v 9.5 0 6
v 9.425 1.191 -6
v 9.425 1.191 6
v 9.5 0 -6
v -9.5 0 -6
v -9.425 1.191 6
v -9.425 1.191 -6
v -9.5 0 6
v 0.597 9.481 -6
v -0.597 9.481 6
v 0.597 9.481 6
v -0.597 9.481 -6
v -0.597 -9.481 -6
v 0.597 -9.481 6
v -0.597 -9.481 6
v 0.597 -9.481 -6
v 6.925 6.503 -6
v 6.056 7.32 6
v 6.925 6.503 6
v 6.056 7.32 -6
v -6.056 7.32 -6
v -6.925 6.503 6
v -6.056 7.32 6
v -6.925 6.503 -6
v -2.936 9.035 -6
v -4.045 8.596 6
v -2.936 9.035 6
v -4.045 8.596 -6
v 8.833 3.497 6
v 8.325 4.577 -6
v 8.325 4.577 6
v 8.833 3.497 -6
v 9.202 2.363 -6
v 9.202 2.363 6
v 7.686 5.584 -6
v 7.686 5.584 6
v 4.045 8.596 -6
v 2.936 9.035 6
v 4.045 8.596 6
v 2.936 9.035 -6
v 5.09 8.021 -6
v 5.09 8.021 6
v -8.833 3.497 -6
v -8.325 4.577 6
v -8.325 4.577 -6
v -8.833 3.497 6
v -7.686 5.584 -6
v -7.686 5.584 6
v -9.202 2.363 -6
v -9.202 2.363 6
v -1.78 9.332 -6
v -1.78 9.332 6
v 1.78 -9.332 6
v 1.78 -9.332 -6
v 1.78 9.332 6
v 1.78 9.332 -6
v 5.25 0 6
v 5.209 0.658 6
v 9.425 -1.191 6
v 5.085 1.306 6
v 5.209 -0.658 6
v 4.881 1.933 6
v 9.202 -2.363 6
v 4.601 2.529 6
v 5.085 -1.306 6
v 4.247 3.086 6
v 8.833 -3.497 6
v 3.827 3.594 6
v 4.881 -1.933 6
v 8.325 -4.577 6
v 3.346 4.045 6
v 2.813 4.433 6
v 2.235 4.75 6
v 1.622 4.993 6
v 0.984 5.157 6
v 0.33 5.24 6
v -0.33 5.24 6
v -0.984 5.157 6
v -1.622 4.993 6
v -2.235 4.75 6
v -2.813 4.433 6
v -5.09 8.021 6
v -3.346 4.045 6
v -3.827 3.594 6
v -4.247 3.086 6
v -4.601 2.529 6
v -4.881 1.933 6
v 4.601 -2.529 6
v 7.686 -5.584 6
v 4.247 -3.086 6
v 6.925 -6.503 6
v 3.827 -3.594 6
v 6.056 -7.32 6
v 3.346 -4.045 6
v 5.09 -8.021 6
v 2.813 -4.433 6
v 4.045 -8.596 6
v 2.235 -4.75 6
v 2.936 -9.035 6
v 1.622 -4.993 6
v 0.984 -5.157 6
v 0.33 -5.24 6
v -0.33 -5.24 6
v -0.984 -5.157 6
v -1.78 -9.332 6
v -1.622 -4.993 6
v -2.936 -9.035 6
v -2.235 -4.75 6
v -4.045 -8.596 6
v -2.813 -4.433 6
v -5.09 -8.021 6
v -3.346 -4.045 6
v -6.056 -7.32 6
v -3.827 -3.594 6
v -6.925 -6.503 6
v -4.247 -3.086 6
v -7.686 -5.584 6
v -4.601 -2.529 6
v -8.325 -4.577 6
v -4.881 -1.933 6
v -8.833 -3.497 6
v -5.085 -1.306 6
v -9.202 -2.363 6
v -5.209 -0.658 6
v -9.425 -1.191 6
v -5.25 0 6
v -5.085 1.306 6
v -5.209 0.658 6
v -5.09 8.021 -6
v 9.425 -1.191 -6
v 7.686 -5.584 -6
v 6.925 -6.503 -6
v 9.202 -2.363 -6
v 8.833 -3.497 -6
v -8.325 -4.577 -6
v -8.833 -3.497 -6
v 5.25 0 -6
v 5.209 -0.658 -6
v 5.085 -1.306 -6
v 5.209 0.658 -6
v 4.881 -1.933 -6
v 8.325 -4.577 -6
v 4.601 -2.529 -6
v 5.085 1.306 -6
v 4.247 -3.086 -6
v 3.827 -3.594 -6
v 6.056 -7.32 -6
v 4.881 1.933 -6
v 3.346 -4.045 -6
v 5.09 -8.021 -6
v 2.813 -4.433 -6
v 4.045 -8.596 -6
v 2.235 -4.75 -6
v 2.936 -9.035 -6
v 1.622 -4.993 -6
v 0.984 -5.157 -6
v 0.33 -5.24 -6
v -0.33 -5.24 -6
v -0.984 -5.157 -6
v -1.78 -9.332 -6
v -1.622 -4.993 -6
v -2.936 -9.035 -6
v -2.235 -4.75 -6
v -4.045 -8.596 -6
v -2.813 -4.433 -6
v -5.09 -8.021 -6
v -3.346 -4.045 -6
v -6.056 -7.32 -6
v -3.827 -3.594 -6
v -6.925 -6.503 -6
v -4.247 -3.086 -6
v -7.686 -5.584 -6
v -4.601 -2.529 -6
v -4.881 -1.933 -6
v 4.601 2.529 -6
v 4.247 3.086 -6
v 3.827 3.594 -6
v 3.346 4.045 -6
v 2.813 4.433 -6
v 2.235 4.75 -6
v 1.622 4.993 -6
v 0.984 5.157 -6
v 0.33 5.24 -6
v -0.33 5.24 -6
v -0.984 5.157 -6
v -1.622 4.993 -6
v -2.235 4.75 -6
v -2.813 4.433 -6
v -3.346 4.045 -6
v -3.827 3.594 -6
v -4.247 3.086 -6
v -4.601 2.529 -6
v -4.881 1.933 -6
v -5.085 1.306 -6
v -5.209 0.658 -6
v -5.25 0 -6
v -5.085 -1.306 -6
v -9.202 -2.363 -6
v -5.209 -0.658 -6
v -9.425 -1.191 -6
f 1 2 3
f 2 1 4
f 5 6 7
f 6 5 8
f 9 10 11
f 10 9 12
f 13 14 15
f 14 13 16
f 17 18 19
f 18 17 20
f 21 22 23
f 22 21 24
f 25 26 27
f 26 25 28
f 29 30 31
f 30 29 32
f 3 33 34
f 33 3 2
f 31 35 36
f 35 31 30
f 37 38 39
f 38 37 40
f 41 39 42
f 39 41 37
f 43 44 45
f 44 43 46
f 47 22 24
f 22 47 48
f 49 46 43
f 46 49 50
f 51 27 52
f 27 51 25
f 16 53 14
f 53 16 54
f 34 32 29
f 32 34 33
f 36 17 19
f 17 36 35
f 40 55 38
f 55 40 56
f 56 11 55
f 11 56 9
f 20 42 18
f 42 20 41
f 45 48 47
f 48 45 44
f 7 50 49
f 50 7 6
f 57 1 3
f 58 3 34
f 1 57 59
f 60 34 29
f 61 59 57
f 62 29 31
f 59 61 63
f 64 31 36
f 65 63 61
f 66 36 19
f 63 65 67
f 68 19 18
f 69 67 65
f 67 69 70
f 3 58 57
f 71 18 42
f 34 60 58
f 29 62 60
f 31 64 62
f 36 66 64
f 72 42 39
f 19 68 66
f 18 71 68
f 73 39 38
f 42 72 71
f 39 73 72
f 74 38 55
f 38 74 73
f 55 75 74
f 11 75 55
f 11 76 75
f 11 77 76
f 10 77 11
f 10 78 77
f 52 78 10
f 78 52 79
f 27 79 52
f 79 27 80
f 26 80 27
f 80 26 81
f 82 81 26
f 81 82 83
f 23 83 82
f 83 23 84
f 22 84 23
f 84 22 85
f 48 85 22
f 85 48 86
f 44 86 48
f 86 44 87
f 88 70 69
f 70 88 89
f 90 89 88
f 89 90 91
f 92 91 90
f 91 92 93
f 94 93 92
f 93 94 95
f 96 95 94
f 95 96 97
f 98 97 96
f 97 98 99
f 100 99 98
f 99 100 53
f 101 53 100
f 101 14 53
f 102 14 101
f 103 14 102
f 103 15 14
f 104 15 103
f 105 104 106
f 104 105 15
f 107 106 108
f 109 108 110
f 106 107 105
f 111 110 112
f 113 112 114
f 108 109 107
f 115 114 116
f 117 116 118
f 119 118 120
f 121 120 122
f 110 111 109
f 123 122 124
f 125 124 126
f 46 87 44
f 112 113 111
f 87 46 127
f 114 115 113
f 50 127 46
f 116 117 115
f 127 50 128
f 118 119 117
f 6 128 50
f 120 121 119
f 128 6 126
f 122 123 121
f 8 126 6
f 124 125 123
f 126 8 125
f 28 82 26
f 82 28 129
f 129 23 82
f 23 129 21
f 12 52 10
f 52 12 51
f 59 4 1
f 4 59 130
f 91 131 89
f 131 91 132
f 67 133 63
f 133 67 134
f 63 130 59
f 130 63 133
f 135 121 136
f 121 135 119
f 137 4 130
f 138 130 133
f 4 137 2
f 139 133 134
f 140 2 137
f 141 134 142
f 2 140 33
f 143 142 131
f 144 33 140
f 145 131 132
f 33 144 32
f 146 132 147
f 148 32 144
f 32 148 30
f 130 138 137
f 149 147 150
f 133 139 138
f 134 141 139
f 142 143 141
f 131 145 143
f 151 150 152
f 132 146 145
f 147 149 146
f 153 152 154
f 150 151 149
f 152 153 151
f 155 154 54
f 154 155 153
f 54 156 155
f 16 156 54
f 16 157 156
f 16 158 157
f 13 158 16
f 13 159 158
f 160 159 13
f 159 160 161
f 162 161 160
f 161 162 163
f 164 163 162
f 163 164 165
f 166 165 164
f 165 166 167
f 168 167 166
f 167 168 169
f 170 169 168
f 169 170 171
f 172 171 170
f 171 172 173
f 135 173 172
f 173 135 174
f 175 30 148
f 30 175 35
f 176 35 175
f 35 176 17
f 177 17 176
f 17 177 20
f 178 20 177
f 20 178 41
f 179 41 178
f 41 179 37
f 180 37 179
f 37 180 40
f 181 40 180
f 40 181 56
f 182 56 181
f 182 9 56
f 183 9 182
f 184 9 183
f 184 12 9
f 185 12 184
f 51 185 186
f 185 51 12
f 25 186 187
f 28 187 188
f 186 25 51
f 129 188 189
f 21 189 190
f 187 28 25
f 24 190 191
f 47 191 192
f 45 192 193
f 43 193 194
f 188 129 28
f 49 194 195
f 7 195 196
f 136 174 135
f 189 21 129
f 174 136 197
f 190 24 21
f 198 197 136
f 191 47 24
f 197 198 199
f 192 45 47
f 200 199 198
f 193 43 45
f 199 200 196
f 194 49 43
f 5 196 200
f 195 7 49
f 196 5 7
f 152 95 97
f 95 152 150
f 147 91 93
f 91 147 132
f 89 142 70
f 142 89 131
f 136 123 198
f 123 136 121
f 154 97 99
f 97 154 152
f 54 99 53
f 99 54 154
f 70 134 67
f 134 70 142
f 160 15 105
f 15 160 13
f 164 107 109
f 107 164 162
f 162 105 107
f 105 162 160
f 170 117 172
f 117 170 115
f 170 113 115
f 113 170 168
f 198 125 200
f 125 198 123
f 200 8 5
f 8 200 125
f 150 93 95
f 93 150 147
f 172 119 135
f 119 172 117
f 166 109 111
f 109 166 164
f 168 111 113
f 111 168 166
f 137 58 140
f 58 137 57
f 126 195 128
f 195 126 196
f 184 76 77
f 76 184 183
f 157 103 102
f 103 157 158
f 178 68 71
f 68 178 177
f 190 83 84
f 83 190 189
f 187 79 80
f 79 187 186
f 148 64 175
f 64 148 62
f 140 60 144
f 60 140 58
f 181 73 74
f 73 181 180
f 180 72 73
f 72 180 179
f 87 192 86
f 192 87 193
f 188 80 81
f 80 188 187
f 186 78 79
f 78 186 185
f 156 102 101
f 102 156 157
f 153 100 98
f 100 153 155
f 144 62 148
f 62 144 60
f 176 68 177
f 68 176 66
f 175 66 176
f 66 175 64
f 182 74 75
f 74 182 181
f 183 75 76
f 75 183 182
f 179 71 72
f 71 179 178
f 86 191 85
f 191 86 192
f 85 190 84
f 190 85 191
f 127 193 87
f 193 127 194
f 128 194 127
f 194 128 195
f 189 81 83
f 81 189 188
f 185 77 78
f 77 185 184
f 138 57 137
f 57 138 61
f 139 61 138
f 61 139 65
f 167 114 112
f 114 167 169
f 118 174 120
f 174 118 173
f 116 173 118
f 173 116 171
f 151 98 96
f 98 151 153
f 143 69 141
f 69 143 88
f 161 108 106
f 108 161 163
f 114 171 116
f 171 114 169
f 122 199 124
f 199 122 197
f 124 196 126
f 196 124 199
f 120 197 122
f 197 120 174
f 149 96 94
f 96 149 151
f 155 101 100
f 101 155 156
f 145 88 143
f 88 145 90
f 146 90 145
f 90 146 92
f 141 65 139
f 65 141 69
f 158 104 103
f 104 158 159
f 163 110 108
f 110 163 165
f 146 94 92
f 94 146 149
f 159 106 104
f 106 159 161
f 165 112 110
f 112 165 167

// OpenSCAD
$fn = 50;


difference() {
	union() {
		translate(v = [0, 0, -6.0000000000]) {
			cylinder(h = 12, r = 9.5000000000);
		}
	}
	union() {
		translate(v = [0, 0, -100.0000000000]) {
			cylinder(h = 200, r = 5.2500000000);
		}
	}
}
